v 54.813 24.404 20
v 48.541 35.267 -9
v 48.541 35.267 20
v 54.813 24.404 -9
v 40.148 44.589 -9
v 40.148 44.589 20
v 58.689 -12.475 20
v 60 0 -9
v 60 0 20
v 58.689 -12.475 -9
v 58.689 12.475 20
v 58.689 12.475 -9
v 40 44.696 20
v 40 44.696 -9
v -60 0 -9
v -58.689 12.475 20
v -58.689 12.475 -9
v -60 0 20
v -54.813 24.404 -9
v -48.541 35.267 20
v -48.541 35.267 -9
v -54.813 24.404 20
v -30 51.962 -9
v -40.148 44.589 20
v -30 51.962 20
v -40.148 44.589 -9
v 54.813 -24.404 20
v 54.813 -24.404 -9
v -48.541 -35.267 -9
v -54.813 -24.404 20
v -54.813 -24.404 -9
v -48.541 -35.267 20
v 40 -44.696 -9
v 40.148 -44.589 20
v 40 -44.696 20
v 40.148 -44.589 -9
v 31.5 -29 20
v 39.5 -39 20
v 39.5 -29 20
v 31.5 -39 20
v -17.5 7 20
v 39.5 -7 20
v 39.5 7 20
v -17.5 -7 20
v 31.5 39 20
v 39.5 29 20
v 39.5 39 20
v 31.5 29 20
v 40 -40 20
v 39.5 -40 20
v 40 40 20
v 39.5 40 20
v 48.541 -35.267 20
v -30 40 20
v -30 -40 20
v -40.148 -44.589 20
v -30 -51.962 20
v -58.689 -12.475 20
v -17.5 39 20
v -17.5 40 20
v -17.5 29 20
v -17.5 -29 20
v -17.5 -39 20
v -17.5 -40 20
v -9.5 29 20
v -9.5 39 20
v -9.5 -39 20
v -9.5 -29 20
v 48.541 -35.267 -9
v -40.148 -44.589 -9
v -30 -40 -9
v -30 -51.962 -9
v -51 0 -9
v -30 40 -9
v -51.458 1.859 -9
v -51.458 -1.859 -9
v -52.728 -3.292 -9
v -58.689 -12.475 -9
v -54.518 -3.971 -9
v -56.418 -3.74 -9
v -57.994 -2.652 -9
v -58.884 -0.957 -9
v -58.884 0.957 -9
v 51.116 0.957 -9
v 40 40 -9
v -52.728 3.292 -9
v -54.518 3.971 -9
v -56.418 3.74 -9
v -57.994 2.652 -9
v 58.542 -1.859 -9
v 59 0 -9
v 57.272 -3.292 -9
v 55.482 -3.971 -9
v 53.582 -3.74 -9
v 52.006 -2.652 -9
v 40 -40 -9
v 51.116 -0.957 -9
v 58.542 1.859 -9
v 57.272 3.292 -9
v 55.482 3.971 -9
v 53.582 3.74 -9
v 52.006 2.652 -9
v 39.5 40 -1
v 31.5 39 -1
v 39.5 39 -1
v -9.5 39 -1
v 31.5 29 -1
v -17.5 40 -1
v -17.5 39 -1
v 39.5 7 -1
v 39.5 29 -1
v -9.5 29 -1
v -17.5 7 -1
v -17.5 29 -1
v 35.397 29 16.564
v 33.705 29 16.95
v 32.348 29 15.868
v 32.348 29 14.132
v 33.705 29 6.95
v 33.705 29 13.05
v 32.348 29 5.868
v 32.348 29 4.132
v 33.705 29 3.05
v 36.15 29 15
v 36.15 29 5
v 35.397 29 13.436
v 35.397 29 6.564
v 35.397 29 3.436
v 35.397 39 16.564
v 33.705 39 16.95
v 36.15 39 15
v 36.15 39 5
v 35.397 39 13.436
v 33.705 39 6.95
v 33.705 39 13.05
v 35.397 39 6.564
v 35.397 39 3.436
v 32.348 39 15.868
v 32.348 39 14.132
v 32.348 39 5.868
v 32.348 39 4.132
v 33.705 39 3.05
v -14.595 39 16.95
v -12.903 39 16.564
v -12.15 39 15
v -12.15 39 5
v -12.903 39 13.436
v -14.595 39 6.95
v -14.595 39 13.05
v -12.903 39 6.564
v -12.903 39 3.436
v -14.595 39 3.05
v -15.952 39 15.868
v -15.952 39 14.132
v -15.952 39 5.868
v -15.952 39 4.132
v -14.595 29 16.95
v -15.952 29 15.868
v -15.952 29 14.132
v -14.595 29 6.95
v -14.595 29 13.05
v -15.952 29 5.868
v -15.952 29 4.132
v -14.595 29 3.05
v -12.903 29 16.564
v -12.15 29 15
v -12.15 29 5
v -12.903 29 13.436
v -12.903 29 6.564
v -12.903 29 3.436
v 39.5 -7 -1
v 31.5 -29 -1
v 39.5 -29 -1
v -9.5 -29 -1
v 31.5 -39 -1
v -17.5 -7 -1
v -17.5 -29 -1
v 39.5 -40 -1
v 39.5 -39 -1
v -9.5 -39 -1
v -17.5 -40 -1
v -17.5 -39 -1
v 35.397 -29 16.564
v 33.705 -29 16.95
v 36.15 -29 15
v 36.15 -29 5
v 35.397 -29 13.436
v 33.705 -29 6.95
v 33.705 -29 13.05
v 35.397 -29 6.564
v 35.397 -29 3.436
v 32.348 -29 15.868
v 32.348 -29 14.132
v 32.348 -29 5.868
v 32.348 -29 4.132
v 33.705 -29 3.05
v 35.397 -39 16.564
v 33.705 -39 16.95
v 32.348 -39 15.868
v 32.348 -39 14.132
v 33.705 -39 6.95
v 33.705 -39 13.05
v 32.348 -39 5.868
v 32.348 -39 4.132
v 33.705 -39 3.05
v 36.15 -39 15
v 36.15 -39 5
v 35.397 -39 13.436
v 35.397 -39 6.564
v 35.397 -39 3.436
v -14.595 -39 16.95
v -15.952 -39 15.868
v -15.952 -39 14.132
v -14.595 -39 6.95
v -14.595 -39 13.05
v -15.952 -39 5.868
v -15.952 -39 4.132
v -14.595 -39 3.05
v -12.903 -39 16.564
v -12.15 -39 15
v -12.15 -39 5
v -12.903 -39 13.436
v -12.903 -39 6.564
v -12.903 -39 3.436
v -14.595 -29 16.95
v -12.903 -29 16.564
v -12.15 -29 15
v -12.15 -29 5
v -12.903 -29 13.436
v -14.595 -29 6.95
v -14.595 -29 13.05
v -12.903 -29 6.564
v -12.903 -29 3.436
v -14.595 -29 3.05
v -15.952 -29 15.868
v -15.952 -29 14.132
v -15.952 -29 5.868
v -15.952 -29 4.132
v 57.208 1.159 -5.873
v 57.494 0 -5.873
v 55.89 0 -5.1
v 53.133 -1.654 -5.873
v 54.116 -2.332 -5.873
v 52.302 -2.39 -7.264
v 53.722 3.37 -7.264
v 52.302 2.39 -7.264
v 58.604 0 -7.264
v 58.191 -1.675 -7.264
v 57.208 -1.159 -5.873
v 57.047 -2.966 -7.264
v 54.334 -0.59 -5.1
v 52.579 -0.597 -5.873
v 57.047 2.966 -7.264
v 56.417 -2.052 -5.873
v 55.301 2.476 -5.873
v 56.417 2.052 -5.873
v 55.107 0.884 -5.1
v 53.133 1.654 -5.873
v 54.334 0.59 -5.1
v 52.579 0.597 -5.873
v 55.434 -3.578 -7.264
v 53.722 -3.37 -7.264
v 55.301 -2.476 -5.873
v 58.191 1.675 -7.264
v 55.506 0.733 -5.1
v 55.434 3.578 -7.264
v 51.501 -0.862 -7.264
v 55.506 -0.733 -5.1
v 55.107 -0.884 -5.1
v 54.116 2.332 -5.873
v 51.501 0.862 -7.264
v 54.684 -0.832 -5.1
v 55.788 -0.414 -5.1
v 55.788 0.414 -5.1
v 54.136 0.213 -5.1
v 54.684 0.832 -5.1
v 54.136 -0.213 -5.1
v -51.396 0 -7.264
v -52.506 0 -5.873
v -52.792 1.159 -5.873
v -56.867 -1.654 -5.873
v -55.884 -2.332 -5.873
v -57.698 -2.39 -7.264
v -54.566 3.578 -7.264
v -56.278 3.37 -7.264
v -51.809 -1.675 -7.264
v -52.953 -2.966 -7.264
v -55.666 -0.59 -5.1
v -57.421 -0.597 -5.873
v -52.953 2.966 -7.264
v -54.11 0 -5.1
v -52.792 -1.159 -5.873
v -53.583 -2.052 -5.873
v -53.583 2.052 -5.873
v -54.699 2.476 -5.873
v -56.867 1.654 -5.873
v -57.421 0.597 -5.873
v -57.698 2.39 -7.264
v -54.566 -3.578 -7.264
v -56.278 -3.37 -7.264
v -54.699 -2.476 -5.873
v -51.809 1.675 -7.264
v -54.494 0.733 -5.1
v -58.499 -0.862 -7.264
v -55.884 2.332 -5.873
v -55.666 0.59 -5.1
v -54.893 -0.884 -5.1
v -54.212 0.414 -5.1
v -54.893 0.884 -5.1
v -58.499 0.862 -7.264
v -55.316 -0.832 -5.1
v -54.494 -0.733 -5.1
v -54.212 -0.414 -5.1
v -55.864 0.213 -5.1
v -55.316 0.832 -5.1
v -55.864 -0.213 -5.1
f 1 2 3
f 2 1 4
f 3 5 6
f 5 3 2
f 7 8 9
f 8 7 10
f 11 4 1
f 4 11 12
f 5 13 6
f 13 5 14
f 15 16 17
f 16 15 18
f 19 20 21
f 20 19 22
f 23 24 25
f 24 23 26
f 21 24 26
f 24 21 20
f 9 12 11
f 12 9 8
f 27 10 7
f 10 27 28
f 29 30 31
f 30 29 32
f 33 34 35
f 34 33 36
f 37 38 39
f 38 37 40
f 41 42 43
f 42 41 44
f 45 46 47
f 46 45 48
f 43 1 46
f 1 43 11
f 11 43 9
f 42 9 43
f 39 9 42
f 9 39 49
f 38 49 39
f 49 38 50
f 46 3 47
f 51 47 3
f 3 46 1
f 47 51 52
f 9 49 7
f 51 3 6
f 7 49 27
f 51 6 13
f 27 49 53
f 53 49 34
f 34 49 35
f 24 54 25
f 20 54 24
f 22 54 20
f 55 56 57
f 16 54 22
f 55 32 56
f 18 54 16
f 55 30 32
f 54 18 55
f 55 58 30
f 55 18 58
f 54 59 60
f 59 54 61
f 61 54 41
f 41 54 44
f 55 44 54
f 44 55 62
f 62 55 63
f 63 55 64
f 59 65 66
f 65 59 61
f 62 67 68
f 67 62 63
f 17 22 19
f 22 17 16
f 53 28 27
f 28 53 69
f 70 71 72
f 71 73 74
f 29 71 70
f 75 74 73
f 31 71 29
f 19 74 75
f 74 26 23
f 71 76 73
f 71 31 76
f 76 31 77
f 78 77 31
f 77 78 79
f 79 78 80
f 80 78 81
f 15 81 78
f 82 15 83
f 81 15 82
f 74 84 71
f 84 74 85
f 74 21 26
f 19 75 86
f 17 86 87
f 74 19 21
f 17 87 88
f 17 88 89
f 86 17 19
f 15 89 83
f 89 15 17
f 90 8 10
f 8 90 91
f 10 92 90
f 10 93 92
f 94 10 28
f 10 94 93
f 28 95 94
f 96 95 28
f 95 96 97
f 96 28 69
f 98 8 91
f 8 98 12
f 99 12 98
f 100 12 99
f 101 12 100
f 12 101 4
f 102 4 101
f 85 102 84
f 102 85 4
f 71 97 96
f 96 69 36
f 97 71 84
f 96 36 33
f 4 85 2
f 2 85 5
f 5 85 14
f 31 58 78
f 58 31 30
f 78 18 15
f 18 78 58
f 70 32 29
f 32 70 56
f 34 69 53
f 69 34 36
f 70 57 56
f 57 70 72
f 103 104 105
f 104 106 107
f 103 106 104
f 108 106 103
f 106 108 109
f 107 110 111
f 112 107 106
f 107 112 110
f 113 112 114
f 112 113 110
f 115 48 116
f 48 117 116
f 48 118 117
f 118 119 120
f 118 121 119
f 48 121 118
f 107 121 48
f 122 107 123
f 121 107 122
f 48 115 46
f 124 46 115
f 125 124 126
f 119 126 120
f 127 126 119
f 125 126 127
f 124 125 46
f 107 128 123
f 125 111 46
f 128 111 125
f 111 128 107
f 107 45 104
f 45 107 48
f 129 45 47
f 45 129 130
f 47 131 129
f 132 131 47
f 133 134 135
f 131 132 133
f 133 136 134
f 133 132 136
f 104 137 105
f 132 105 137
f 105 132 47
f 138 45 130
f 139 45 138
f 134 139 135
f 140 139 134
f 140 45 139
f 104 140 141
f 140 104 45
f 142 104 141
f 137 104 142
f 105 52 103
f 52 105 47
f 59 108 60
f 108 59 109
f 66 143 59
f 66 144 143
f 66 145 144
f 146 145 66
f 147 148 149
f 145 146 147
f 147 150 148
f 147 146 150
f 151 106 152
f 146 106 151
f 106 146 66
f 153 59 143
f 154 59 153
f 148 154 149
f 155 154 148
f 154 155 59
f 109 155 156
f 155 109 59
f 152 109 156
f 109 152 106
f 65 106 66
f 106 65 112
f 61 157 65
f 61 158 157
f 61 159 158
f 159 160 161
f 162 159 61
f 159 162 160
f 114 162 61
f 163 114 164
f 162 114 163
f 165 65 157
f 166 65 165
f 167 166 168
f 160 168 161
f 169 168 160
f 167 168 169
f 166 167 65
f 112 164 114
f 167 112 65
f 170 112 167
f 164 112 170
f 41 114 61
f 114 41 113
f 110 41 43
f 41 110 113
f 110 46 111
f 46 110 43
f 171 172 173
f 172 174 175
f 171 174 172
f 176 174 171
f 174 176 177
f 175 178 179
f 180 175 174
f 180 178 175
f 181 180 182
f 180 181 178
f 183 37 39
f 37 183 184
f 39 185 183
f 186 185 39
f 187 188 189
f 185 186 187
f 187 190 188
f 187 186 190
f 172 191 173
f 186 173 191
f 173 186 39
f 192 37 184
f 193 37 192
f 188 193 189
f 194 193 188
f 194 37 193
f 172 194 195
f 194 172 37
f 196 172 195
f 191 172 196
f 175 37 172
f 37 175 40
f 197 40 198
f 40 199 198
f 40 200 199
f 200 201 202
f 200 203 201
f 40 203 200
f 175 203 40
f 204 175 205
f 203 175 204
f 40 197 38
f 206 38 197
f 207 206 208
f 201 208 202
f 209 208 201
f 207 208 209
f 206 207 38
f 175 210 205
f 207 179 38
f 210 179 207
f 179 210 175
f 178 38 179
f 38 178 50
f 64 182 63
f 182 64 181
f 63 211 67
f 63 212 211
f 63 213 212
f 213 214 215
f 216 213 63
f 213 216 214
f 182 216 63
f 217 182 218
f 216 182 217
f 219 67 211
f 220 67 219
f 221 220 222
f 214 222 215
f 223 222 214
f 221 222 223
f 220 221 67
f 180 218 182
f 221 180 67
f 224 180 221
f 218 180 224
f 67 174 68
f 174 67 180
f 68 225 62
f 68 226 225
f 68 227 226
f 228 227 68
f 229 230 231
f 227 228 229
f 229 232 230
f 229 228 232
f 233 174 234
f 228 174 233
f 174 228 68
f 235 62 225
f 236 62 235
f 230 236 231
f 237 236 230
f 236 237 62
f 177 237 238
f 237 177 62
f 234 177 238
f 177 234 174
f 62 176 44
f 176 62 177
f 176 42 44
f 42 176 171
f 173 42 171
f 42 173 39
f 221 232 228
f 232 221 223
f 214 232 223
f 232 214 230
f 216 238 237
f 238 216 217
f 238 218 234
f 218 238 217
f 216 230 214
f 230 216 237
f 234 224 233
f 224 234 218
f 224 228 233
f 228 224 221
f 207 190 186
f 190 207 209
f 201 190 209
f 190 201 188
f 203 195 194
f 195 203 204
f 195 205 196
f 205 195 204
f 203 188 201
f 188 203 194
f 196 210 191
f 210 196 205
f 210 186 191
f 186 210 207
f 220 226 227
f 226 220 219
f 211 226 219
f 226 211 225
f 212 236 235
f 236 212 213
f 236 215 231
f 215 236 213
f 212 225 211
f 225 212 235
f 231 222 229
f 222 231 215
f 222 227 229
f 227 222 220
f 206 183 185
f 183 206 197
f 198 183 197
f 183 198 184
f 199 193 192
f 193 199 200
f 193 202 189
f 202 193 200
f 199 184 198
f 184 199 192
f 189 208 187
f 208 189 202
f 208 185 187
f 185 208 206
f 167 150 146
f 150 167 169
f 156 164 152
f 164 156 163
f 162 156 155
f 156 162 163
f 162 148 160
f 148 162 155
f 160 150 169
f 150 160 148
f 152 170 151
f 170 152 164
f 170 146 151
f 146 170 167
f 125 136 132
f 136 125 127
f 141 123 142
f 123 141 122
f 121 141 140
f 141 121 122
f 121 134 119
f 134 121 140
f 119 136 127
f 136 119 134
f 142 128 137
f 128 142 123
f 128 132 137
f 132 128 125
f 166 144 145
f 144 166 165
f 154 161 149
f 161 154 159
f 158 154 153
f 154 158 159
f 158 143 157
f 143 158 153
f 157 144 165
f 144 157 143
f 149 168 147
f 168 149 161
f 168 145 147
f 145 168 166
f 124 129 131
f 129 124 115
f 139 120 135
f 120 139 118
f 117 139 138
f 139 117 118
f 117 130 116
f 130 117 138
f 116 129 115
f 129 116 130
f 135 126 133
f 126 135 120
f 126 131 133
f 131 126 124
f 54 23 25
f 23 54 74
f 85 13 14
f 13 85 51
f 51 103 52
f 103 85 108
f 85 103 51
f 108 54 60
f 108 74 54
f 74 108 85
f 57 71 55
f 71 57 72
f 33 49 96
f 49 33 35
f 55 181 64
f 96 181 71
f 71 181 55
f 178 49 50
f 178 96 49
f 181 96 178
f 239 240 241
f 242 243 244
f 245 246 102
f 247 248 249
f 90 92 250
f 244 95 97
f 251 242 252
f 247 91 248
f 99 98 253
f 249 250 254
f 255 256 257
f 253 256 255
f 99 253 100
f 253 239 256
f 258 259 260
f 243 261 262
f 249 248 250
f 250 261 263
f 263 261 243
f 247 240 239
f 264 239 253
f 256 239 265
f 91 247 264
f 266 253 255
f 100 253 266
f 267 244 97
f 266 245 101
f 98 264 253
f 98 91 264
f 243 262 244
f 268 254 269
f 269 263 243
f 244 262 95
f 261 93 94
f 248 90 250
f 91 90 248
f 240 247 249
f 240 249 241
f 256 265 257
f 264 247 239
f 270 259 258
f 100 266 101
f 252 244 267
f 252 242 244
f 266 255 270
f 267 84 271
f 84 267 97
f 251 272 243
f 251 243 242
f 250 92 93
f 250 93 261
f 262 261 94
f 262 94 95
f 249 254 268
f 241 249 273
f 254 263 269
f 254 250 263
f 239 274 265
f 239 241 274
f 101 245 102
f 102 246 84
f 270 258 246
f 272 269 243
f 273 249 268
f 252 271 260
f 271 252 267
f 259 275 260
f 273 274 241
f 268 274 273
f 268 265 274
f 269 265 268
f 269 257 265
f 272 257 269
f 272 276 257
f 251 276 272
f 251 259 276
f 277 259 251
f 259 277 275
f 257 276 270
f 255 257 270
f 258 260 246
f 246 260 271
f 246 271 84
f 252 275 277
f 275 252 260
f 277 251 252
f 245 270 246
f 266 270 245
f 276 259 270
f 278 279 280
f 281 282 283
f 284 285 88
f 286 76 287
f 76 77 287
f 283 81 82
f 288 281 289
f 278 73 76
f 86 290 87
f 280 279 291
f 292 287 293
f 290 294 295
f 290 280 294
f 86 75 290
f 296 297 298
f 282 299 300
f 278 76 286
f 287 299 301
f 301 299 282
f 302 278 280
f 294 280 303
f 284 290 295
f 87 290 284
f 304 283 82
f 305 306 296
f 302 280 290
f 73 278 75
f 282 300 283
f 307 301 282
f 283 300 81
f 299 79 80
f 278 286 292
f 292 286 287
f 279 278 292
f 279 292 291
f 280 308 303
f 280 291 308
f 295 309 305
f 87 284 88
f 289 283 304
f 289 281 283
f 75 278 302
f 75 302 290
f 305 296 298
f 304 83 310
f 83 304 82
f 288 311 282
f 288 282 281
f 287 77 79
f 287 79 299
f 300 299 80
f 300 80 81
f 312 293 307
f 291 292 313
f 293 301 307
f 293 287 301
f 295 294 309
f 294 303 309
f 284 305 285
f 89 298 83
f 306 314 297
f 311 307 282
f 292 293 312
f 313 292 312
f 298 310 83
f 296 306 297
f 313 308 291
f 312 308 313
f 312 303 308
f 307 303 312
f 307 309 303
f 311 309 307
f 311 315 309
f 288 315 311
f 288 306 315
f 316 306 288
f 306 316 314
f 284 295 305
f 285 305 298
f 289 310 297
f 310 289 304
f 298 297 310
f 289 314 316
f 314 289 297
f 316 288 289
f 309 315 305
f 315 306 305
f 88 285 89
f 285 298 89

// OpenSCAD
    Y1 = 10;
    Y2 = 32-Y1;
    a=[[-8-9.5,Y1+Y2+8],[-8-9.5,Y1+Y2],[-9.5,Y1+Y2],[-9.5,Y2],[-8-9.5,Y2],[-8-9.5,0],[-9.5+41+8,0],[-9.5+41+8,Y2],[-9.5+41,Y2],[-9.5+41,Y1+Y2],[-9.5+41+8,Y1+Y2],[-9.5+41+8,Y1+Y2+8]];
            
        difference() 
        {
            translate([0,0,-9])cylinder(29,120/2,120/2);
            translate([0,7,-1])
            linear_extrude(31)
            polygon(a);
            mirror([0,1,0])
            translate([0,7,-1])
            linear_extrude(31)
            polygon(a);
            translate([-48.3/2+10,-10,5])rotate([90,0,0])    cylinder(50,2,2);
            translate([48.3/2+10,-10,5])rotate([90,0,0])    cylinder(50,2,2);
            translate([-48.3/2+10,-10,15])rotate([90,0,0])    cylinder(50,2,2);
            translate([48.3/2+10,-10,15])rotate([90,0,0])    cylinder(50,2,2);
            
            mirror([0,1,0])translate([-48.3/2+10,-10,5])rotate([90,0,0])    cylinder(50,2,2);
            mirror([0,1,0])translate([48.3/2+10,-10,5])rotate([90,0,0])    cylinder(50,2,2);
            mirror([0,1,0])translate([-48.3/2+10,-10,15])rotate([90,0,0])    cylinder(50,2,2);
            mirror([0,1,0])translate([48.3/2+10,-10,15])rotate([90,0,0])    cylinder(50,2,2);
            translate([10,0,-15])linear_extrude(40)
            polygon([[30,40],[30,60],[-40,60],[-40,40]]);
            translate([10,0,-15])linear_extrude(40)
            polygon([[30,-40],[30,-60],[-40,-60],[-40,-40]]);
            
    translate([55,0,-9])sphere(r = 4);
    translate([-55,0,-9])sphere(r = 4);
        //    cube(center = true,size = [10,15,20] );
        }
